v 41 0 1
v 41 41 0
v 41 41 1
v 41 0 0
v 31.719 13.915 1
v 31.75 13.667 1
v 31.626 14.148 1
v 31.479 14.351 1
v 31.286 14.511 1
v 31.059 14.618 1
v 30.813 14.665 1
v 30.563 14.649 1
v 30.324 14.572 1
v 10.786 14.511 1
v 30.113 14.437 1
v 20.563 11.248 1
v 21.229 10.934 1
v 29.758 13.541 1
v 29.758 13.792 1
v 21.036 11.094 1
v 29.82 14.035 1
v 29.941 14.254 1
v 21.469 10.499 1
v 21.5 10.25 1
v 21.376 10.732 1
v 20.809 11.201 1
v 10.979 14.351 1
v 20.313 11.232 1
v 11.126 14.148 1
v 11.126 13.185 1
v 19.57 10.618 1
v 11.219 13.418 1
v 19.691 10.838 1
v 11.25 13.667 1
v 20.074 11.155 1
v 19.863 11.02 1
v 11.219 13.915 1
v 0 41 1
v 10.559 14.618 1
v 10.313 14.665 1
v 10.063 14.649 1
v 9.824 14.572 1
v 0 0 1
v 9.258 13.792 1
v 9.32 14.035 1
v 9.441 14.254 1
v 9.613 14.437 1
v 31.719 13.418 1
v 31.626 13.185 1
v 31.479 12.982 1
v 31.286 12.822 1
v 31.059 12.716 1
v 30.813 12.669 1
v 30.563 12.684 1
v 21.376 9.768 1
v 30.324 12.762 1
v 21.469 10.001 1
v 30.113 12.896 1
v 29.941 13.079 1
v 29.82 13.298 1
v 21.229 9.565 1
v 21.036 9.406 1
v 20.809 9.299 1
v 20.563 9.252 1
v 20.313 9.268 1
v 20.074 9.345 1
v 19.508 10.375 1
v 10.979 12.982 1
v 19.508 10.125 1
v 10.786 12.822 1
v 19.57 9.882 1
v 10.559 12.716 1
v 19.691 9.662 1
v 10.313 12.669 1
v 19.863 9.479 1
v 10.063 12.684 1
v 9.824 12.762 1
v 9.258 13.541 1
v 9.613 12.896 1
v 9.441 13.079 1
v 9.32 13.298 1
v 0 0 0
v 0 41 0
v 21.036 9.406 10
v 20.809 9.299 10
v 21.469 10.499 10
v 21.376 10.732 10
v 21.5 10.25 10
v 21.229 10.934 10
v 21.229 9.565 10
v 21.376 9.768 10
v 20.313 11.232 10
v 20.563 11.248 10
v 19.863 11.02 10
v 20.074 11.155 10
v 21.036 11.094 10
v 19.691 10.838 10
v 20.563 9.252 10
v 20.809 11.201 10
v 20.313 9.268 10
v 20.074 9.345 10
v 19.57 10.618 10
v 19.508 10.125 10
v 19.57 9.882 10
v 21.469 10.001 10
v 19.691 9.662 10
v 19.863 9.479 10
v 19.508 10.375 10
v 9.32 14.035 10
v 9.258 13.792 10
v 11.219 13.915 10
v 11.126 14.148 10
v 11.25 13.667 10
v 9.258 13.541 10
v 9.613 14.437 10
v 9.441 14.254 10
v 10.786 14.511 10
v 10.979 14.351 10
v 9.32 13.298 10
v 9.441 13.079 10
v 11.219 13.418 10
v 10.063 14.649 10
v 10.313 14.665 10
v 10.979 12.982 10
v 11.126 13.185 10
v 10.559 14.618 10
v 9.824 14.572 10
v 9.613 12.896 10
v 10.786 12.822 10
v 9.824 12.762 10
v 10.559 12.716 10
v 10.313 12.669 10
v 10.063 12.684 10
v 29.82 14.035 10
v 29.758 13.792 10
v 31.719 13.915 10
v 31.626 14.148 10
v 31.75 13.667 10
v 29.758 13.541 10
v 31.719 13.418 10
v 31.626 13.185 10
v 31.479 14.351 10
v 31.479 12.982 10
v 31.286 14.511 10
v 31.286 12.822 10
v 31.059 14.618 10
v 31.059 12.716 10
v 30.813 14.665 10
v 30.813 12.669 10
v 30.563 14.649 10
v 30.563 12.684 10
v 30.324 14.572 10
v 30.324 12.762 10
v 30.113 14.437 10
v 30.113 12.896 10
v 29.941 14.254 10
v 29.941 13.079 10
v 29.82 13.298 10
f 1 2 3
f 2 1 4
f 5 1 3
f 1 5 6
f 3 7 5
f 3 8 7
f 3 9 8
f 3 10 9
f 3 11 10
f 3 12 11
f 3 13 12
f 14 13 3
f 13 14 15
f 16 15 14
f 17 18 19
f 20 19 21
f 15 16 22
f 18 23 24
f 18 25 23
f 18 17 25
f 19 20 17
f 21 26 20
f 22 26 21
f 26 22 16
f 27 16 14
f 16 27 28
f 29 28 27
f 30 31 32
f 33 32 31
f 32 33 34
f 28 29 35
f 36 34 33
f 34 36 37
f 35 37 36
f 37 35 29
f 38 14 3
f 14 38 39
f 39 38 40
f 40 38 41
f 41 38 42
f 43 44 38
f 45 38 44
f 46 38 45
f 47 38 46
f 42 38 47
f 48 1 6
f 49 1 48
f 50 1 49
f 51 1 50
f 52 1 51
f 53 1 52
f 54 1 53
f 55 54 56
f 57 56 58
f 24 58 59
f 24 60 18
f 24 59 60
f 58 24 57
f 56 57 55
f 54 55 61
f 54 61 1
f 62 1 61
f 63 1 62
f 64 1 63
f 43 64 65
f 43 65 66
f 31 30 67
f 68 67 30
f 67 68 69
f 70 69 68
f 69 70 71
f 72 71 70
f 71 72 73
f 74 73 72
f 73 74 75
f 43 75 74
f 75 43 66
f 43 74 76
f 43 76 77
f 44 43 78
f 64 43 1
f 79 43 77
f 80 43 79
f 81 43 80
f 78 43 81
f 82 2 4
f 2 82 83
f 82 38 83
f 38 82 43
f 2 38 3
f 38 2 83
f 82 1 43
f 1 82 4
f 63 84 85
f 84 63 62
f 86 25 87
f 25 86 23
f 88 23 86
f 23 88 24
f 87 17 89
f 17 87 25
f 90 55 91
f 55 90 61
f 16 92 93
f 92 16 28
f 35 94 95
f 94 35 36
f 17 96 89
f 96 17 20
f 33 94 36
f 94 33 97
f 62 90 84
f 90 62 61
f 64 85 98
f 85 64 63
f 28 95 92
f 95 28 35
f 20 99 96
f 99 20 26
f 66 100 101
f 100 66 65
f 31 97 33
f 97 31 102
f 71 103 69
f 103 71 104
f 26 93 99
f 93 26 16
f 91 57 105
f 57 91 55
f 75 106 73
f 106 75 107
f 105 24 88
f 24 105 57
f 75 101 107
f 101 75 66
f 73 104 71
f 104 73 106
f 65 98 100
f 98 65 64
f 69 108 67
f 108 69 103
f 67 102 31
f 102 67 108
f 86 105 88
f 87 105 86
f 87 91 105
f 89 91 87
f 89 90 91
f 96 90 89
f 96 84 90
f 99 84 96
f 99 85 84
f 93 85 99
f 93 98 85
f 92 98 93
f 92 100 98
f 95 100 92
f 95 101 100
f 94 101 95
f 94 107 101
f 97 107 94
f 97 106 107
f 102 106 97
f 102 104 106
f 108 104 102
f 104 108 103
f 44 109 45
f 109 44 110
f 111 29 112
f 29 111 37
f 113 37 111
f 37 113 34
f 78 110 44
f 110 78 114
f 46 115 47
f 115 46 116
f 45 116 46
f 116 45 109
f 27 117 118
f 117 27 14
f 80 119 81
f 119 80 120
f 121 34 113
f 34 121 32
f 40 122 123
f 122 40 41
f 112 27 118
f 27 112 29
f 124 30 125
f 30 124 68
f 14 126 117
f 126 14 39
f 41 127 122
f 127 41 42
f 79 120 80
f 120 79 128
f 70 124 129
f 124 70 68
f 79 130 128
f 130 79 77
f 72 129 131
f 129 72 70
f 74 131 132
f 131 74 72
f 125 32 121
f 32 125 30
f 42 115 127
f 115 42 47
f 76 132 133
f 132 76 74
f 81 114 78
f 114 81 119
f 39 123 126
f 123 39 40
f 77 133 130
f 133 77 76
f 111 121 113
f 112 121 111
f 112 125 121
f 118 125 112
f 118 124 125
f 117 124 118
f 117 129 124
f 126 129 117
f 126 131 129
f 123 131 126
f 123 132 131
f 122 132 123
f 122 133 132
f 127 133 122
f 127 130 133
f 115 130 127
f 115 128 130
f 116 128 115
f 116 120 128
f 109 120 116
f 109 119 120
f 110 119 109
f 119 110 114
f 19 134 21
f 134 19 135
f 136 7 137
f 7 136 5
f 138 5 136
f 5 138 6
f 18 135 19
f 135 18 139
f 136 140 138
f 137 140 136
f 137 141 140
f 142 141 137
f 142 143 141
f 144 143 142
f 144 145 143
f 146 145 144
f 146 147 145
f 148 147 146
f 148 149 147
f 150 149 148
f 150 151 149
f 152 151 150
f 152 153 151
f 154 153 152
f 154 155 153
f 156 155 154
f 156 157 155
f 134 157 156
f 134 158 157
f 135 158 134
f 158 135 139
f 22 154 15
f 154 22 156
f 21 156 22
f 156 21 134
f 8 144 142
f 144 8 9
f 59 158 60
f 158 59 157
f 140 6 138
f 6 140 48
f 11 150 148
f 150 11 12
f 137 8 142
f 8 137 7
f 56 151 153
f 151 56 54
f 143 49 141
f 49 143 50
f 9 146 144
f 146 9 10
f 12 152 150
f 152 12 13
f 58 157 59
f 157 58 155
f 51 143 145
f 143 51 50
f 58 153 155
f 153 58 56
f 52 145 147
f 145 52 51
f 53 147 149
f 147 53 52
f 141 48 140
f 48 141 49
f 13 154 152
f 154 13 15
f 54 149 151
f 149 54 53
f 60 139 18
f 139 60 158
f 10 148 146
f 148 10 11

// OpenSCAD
l=41;
h=10;
r=1;
dFactor=4;

$fn=25;

cube([l, l, 1]);

translate([l/2, l/4, 0]) {
    cylinder(h, r);
}

translate([l/dFactor, l/3, 0]) {
    cylinder(h, r);
}

translate([(dFactor-1)*l/dFactor, l/3, 0]) {
    cylinder(h, r);
}
